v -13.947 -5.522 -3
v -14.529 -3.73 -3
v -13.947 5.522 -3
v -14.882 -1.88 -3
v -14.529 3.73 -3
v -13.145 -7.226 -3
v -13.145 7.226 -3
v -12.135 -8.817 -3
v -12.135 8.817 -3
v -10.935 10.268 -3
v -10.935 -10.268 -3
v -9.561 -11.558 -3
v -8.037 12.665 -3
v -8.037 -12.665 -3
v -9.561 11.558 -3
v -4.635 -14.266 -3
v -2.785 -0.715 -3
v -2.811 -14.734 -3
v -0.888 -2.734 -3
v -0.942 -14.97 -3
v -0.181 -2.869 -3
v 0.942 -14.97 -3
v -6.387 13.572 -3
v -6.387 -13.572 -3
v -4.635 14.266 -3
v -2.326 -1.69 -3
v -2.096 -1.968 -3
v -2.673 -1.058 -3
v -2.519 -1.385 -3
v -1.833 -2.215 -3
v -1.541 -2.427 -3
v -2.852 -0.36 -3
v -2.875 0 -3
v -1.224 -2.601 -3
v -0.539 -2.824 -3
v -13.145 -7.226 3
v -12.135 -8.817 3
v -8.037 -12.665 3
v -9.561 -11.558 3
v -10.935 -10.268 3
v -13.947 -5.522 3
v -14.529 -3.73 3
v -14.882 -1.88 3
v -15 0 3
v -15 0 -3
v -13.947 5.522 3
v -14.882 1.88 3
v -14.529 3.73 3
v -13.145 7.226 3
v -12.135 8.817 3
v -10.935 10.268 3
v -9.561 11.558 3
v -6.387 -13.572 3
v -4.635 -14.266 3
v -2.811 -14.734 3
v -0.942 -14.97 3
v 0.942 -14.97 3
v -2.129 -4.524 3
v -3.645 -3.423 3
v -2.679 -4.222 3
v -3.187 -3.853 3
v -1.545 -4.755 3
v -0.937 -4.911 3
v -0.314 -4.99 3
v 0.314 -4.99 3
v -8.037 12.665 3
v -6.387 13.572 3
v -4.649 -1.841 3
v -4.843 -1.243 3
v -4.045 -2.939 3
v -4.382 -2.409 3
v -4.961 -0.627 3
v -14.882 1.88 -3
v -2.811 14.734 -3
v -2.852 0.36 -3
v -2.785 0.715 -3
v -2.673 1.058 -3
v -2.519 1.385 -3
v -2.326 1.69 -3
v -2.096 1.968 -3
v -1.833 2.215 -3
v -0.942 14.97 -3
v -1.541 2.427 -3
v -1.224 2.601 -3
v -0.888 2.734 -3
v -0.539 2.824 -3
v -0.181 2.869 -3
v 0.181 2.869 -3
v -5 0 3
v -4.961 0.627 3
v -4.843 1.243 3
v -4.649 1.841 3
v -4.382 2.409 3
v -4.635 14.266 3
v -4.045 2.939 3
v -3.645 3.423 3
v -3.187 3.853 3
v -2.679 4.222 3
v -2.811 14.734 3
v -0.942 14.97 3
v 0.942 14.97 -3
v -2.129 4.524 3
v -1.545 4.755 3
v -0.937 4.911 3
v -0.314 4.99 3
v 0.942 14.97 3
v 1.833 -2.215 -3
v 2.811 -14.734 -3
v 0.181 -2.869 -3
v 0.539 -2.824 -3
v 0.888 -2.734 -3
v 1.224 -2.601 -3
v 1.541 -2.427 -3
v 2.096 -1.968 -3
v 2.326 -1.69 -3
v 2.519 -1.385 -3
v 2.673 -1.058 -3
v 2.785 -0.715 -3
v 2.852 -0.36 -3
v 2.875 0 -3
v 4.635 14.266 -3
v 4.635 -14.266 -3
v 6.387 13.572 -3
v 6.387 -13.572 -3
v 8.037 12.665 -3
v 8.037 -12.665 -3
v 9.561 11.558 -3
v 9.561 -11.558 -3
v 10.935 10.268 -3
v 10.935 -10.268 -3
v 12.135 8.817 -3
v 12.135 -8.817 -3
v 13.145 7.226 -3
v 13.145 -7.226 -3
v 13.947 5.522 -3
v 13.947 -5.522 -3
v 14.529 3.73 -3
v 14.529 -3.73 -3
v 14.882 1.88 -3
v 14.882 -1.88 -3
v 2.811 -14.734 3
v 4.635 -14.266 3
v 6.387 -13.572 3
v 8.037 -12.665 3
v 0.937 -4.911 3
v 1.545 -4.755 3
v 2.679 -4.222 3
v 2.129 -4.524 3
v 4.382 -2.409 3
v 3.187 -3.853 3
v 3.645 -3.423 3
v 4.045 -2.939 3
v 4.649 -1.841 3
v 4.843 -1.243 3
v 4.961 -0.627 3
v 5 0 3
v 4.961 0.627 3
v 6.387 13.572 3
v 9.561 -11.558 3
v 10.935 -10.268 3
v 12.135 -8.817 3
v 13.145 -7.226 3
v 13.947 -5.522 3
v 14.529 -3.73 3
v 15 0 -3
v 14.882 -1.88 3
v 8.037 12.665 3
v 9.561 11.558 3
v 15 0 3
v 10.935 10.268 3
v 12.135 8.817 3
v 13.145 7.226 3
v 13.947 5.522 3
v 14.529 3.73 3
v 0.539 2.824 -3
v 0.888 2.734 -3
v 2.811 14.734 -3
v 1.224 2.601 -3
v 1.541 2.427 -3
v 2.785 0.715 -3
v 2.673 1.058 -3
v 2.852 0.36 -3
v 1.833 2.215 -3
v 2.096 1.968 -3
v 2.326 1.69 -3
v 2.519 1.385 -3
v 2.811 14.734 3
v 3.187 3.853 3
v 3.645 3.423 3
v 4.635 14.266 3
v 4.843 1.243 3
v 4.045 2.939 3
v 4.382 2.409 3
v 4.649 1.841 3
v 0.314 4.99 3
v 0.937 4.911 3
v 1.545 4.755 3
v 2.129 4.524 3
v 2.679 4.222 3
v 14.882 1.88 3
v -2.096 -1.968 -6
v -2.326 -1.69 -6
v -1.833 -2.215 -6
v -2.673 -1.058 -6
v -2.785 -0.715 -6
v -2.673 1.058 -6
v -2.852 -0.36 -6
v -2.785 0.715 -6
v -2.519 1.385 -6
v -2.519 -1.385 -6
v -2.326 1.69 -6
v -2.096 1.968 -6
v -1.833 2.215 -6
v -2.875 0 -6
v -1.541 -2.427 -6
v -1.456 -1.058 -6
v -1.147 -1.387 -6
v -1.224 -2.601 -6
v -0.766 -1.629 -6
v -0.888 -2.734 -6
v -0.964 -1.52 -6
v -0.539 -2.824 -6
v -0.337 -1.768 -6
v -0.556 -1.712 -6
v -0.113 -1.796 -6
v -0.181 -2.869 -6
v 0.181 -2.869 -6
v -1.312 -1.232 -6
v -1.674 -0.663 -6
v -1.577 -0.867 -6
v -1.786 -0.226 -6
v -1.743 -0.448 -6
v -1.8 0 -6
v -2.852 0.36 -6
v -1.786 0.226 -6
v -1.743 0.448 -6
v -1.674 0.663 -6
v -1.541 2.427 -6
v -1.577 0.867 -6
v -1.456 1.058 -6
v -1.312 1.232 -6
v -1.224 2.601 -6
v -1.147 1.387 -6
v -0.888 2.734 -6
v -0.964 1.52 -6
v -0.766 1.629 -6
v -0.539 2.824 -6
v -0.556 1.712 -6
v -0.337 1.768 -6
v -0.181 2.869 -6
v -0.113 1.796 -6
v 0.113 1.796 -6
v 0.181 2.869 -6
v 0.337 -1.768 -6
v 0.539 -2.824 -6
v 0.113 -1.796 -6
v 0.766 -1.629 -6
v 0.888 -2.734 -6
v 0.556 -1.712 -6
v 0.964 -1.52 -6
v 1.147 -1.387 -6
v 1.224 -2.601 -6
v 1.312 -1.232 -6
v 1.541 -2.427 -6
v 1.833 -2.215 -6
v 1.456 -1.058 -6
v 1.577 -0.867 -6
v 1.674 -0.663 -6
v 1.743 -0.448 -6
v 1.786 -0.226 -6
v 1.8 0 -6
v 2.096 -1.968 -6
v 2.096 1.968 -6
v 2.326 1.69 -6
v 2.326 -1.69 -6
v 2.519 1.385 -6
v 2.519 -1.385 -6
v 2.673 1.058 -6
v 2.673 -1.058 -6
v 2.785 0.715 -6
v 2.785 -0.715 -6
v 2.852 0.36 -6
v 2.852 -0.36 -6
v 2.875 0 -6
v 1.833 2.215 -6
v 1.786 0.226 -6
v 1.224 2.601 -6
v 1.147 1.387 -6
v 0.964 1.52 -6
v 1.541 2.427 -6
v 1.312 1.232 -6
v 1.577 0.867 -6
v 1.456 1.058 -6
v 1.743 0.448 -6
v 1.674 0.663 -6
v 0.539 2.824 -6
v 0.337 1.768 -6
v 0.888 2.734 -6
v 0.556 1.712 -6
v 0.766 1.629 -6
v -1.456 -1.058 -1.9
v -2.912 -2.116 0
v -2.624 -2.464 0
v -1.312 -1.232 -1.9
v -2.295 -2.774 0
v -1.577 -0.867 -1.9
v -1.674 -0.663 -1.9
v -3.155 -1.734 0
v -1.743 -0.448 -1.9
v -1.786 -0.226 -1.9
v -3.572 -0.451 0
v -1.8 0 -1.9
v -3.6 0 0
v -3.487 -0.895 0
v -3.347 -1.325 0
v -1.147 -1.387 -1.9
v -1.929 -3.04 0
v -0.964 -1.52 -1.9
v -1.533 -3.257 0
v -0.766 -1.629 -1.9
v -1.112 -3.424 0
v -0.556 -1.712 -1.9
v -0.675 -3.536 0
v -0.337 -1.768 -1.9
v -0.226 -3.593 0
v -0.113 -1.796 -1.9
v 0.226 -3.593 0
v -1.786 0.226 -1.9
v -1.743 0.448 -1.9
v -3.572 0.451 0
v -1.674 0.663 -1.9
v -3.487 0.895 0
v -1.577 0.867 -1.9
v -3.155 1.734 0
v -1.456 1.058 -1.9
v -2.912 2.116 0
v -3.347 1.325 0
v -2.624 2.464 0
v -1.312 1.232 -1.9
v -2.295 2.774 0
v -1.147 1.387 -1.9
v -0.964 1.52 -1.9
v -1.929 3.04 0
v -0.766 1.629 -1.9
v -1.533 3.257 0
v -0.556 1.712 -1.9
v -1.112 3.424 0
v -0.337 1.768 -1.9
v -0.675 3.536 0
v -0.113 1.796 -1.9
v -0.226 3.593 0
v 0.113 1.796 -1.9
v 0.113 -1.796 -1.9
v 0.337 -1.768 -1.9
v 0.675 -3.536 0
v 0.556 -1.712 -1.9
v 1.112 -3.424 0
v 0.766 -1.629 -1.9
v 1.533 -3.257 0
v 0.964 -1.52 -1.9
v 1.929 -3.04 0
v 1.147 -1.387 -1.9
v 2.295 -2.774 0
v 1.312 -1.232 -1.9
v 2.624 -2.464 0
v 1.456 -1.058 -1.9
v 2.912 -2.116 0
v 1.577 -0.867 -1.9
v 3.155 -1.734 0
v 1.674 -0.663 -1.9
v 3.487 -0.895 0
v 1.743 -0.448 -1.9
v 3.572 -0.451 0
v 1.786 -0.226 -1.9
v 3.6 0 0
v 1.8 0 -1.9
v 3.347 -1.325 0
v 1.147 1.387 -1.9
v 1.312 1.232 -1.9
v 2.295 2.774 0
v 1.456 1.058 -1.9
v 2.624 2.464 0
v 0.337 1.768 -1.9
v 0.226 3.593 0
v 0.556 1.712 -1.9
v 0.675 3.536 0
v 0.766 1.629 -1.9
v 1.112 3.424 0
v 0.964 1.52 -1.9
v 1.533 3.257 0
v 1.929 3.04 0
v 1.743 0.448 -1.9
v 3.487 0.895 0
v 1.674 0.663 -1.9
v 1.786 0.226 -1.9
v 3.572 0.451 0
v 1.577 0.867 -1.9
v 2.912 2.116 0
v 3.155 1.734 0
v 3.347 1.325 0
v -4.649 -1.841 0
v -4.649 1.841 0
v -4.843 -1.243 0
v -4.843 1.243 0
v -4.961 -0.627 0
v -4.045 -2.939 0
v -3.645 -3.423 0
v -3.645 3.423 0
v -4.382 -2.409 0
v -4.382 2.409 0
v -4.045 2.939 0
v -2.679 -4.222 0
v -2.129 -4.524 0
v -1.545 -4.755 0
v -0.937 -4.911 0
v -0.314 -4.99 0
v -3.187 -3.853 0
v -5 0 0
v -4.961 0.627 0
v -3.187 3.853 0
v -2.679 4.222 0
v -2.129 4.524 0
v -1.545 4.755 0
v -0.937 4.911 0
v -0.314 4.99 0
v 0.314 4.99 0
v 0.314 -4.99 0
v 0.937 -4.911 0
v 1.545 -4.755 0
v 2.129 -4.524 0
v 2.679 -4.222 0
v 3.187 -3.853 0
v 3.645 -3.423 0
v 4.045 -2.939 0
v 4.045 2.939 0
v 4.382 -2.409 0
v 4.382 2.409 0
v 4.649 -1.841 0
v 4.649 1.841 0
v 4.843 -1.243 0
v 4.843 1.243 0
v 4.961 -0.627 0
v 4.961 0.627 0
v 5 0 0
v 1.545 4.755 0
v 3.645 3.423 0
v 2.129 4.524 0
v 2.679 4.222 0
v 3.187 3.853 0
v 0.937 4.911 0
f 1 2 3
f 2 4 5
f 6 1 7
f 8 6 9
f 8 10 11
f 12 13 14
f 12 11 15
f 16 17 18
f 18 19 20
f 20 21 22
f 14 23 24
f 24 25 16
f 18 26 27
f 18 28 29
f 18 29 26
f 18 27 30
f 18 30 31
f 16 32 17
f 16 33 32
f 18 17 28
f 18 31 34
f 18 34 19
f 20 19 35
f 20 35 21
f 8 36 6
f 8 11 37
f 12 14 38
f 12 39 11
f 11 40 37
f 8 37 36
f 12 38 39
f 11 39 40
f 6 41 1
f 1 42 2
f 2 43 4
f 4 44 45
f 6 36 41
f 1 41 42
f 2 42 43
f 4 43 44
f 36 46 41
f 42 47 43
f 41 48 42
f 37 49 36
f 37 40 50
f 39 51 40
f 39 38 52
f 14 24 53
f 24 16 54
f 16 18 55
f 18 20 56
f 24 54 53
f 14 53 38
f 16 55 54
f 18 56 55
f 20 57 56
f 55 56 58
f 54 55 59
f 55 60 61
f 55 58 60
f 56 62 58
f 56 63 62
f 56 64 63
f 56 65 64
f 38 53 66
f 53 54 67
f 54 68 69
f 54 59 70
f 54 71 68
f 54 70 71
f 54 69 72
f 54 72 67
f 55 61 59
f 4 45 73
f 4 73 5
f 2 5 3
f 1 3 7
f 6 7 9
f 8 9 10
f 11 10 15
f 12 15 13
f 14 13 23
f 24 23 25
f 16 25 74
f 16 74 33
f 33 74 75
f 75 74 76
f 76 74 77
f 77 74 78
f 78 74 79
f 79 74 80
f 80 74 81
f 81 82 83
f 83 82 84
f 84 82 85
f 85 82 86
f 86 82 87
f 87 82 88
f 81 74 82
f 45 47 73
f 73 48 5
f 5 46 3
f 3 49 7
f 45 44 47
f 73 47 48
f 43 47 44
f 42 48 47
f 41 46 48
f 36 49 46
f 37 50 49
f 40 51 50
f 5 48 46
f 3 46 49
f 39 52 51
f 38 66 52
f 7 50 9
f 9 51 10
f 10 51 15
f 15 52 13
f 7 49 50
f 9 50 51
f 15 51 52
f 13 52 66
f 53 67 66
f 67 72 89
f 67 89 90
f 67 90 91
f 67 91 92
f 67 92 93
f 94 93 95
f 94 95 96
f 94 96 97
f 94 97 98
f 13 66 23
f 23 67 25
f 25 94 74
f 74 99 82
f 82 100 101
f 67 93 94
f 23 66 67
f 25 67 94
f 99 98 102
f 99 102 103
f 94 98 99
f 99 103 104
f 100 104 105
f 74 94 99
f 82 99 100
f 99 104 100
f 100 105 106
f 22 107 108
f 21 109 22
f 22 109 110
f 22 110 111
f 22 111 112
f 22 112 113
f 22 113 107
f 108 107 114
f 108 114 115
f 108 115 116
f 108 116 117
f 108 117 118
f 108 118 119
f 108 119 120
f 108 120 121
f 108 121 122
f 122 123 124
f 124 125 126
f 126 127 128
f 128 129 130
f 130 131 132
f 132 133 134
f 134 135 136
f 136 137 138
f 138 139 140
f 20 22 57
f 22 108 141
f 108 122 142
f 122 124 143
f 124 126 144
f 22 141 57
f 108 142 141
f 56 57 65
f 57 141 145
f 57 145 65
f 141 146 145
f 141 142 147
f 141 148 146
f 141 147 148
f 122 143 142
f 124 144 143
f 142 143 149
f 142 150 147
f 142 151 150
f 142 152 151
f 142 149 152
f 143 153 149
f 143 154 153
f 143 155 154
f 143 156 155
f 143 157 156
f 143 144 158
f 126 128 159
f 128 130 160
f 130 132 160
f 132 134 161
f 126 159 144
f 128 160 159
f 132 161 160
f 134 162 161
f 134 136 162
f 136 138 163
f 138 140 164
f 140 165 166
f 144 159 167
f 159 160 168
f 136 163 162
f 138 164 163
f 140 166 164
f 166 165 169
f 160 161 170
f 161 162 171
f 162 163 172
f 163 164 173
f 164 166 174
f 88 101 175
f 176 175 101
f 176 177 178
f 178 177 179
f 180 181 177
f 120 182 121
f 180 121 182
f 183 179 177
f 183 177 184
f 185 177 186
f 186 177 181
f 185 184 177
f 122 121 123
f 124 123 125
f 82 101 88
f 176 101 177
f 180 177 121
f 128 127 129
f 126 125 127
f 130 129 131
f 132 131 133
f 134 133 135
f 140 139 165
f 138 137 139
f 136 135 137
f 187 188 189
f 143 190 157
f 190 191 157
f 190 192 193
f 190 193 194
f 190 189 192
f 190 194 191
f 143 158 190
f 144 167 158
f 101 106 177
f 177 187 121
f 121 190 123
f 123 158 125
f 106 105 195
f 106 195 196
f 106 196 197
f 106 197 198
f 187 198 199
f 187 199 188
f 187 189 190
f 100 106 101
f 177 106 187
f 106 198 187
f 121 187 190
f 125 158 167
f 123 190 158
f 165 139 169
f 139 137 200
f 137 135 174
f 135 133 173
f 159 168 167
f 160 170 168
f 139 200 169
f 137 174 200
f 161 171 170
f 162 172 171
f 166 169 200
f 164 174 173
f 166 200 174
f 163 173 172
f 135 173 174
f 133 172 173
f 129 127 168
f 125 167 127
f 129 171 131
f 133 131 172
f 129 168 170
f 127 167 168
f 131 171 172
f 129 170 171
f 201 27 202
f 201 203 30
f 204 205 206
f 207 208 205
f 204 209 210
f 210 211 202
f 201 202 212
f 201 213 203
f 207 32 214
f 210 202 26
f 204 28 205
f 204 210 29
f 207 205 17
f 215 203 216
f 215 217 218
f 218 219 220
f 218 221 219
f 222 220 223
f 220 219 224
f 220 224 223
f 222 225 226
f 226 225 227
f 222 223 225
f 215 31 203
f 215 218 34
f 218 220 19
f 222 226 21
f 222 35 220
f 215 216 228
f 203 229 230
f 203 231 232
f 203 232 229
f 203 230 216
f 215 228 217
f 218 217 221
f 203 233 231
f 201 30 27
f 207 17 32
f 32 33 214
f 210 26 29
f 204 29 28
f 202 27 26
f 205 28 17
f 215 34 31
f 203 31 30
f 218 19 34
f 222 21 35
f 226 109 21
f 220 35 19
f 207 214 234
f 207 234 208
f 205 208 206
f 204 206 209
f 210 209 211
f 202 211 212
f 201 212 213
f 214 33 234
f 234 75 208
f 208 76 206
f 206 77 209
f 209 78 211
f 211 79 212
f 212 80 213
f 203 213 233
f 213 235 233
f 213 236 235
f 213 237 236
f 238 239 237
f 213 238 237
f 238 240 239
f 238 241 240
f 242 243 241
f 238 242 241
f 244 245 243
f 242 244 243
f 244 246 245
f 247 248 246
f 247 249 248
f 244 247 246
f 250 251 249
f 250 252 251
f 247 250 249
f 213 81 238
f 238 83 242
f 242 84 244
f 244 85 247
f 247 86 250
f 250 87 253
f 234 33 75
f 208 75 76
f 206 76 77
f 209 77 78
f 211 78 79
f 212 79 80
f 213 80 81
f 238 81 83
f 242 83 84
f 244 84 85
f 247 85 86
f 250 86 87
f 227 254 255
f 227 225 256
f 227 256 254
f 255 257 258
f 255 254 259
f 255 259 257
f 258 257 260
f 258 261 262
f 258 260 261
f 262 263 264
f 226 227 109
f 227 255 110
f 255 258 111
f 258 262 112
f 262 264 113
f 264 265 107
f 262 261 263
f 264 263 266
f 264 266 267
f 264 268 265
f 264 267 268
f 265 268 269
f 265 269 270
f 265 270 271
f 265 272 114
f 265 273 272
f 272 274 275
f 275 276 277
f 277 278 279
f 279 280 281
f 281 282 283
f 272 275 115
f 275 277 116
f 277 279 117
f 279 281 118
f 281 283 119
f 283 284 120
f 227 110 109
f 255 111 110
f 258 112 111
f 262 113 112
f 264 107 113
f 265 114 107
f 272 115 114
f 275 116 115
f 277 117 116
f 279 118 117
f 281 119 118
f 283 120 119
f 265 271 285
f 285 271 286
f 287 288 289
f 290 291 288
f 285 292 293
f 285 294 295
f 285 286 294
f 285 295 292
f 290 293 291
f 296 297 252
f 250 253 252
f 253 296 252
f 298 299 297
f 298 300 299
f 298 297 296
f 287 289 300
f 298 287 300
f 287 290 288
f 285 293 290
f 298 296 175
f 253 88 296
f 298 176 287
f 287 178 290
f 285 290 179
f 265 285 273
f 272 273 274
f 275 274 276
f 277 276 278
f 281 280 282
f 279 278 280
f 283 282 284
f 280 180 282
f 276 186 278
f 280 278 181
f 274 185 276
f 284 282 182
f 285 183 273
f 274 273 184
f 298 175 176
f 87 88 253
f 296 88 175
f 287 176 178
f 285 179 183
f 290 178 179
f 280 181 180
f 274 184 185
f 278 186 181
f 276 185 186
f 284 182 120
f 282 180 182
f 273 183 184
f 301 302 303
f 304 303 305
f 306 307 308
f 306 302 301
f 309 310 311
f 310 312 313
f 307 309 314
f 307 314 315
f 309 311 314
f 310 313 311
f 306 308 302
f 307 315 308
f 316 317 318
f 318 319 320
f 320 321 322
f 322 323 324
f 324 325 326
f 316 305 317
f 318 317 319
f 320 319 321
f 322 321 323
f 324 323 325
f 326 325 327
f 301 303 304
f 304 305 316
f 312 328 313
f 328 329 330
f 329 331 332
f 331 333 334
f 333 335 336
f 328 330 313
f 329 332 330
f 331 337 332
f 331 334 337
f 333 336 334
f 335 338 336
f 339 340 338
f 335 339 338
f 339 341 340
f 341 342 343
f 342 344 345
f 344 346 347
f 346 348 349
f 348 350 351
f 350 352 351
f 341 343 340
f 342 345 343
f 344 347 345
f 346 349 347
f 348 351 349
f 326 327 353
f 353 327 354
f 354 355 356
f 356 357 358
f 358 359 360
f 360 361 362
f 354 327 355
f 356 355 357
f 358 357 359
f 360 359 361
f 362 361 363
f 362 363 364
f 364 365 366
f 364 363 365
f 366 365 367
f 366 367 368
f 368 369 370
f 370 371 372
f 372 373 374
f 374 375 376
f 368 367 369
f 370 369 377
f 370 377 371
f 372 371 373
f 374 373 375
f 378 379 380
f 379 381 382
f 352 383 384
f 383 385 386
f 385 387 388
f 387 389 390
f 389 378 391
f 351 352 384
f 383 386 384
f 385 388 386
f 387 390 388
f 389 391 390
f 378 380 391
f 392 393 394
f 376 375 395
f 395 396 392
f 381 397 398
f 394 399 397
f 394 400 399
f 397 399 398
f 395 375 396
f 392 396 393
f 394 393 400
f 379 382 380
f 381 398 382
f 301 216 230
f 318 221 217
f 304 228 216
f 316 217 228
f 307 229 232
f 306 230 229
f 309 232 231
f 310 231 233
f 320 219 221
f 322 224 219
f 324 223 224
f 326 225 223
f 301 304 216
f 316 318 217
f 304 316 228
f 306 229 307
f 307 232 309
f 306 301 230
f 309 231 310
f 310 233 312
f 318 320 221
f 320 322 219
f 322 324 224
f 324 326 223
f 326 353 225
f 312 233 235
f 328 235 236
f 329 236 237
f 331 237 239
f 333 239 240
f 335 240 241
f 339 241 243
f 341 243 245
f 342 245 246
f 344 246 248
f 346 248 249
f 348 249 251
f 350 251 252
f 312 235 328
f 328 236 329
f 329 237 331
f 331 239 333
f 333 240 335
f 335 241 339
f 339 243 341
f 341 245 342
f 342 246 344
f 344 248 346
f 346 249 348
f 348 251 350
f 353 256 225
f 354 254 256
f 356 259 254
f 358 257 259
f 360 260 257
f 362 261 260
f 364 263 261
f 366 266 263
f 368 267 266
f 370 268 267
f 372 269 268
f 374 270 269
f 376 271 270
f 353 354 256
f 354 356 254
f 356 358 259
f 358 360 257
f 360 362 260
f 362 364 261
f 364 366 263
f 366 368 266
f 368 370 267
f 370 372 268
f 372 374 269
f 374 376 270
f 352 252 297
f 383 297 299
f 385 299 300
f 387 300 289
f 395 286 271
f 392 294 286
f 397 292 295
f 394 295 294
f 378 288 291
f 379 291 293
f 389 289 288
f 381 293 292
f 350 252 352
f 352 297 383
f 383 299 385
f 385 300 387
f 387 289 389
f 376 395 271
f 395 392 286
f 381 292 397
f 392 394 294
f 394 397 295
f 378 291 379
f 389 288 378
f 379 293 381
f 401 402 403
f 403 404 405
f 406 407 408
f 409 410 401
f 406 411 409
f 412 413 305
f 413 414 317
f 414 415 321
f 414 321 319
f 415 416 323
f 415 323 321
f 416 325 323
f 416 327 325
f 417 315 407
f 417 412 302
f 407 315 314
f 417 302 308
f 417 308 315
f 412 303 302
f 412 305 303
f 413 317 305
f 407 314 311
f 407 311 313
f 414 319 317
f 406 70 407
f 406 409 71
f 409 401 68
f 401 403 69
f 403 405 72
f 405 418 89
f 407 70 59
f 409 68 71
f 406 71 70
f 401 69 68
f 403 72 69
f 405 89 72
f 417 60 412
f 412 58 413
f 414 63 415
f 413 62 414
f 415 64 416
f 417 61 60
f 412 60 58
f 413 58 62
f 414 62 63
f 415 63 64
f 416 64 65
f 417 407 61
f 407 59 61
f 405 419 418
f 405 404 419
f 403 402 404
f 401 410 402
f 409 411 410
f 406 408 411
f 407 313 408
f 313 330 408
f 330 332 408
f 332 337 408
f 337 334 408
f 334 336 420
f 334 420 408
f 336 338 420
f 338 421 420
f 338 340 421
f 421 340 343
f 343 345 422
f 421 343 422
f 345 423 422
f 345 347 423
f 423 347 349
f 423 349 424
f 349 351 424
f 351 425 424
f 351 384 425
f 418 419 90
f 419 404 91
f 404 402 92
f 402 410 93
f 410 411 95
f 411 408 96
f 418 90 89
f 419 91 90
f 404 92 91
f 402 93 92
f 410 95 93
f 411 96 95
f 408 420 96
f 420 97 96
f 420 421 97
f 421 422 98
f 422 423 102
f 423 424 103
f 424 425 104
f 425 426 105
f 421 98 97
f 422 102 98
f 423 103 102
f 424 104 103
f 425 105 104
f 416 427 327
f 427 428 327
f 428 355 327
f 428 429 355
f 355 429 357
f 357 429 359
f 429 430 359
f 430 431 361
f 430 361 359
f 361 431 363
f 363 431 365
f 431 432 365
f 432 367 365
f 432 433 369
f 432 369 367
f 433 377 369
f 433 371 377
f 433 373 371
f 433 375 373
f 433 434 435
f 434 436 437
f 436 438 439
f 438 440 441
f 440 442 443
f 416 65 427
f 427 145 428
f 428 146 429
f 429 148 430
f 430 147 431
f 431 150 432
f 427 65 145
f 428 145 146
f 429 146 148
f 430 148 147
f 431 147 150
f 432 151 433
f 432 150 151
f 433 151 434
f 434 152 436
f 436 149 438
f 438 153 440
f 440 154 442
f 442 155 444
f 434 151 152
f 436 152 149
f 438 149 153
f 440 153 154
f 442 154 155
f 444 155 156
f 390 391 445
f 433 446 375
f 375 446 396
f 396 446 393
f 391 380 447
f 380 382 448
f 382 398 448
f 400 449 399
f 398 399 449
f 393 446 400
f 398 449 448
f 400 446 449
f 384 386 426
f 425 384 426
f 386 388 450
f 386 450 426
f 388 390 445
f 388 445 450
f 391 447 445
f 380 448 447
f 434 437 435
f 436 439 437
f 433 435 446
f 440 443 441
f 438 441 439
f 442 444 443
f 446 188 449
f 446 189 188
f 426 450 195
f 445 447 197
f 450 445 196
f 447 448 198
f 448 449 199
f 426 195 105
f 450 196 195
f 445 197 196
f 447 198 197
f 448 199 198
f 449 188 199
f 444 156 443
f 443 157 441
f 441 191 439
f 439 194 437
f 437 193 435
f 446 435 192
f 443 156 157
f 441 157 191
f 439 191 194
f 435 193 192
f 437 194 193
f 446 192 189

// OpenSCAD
$fn = 50;

difference() {
	union() {
		translate(v = [0, 0, -3.0]) {
			cylinder(h = 6, r = 15.0);
		}
		#translate(v = [0, 0, -6.0]) {
			cylinder(h = 6, r = 2.875);
		}
	}
	union() {
		translate(v = [0, 0, 0]) {
			rotate(a = [0, 0, 0]) {
				difference() {
					union() {
						translate(v = [0, 0, -6.0]) {
							cylinder(h = 6, r = 1.5);
						}
						translate(v = [0, 0, -1.9]) {
							cylinder(h = 1.9, r1 = 1.8, r2 = 3.6);
						}
						translate(v = [0, 0, -6.0]) {
							cylinder(h = 6, r = 1.8);
						}
						translate(v = [0, 0, -6.0]) {
							cylinder(h = 6, r = 1.5);
						}
					}
					union();
				}
			}
		}
		#cylinder(h = 3, r = 5.0);
	}
}
